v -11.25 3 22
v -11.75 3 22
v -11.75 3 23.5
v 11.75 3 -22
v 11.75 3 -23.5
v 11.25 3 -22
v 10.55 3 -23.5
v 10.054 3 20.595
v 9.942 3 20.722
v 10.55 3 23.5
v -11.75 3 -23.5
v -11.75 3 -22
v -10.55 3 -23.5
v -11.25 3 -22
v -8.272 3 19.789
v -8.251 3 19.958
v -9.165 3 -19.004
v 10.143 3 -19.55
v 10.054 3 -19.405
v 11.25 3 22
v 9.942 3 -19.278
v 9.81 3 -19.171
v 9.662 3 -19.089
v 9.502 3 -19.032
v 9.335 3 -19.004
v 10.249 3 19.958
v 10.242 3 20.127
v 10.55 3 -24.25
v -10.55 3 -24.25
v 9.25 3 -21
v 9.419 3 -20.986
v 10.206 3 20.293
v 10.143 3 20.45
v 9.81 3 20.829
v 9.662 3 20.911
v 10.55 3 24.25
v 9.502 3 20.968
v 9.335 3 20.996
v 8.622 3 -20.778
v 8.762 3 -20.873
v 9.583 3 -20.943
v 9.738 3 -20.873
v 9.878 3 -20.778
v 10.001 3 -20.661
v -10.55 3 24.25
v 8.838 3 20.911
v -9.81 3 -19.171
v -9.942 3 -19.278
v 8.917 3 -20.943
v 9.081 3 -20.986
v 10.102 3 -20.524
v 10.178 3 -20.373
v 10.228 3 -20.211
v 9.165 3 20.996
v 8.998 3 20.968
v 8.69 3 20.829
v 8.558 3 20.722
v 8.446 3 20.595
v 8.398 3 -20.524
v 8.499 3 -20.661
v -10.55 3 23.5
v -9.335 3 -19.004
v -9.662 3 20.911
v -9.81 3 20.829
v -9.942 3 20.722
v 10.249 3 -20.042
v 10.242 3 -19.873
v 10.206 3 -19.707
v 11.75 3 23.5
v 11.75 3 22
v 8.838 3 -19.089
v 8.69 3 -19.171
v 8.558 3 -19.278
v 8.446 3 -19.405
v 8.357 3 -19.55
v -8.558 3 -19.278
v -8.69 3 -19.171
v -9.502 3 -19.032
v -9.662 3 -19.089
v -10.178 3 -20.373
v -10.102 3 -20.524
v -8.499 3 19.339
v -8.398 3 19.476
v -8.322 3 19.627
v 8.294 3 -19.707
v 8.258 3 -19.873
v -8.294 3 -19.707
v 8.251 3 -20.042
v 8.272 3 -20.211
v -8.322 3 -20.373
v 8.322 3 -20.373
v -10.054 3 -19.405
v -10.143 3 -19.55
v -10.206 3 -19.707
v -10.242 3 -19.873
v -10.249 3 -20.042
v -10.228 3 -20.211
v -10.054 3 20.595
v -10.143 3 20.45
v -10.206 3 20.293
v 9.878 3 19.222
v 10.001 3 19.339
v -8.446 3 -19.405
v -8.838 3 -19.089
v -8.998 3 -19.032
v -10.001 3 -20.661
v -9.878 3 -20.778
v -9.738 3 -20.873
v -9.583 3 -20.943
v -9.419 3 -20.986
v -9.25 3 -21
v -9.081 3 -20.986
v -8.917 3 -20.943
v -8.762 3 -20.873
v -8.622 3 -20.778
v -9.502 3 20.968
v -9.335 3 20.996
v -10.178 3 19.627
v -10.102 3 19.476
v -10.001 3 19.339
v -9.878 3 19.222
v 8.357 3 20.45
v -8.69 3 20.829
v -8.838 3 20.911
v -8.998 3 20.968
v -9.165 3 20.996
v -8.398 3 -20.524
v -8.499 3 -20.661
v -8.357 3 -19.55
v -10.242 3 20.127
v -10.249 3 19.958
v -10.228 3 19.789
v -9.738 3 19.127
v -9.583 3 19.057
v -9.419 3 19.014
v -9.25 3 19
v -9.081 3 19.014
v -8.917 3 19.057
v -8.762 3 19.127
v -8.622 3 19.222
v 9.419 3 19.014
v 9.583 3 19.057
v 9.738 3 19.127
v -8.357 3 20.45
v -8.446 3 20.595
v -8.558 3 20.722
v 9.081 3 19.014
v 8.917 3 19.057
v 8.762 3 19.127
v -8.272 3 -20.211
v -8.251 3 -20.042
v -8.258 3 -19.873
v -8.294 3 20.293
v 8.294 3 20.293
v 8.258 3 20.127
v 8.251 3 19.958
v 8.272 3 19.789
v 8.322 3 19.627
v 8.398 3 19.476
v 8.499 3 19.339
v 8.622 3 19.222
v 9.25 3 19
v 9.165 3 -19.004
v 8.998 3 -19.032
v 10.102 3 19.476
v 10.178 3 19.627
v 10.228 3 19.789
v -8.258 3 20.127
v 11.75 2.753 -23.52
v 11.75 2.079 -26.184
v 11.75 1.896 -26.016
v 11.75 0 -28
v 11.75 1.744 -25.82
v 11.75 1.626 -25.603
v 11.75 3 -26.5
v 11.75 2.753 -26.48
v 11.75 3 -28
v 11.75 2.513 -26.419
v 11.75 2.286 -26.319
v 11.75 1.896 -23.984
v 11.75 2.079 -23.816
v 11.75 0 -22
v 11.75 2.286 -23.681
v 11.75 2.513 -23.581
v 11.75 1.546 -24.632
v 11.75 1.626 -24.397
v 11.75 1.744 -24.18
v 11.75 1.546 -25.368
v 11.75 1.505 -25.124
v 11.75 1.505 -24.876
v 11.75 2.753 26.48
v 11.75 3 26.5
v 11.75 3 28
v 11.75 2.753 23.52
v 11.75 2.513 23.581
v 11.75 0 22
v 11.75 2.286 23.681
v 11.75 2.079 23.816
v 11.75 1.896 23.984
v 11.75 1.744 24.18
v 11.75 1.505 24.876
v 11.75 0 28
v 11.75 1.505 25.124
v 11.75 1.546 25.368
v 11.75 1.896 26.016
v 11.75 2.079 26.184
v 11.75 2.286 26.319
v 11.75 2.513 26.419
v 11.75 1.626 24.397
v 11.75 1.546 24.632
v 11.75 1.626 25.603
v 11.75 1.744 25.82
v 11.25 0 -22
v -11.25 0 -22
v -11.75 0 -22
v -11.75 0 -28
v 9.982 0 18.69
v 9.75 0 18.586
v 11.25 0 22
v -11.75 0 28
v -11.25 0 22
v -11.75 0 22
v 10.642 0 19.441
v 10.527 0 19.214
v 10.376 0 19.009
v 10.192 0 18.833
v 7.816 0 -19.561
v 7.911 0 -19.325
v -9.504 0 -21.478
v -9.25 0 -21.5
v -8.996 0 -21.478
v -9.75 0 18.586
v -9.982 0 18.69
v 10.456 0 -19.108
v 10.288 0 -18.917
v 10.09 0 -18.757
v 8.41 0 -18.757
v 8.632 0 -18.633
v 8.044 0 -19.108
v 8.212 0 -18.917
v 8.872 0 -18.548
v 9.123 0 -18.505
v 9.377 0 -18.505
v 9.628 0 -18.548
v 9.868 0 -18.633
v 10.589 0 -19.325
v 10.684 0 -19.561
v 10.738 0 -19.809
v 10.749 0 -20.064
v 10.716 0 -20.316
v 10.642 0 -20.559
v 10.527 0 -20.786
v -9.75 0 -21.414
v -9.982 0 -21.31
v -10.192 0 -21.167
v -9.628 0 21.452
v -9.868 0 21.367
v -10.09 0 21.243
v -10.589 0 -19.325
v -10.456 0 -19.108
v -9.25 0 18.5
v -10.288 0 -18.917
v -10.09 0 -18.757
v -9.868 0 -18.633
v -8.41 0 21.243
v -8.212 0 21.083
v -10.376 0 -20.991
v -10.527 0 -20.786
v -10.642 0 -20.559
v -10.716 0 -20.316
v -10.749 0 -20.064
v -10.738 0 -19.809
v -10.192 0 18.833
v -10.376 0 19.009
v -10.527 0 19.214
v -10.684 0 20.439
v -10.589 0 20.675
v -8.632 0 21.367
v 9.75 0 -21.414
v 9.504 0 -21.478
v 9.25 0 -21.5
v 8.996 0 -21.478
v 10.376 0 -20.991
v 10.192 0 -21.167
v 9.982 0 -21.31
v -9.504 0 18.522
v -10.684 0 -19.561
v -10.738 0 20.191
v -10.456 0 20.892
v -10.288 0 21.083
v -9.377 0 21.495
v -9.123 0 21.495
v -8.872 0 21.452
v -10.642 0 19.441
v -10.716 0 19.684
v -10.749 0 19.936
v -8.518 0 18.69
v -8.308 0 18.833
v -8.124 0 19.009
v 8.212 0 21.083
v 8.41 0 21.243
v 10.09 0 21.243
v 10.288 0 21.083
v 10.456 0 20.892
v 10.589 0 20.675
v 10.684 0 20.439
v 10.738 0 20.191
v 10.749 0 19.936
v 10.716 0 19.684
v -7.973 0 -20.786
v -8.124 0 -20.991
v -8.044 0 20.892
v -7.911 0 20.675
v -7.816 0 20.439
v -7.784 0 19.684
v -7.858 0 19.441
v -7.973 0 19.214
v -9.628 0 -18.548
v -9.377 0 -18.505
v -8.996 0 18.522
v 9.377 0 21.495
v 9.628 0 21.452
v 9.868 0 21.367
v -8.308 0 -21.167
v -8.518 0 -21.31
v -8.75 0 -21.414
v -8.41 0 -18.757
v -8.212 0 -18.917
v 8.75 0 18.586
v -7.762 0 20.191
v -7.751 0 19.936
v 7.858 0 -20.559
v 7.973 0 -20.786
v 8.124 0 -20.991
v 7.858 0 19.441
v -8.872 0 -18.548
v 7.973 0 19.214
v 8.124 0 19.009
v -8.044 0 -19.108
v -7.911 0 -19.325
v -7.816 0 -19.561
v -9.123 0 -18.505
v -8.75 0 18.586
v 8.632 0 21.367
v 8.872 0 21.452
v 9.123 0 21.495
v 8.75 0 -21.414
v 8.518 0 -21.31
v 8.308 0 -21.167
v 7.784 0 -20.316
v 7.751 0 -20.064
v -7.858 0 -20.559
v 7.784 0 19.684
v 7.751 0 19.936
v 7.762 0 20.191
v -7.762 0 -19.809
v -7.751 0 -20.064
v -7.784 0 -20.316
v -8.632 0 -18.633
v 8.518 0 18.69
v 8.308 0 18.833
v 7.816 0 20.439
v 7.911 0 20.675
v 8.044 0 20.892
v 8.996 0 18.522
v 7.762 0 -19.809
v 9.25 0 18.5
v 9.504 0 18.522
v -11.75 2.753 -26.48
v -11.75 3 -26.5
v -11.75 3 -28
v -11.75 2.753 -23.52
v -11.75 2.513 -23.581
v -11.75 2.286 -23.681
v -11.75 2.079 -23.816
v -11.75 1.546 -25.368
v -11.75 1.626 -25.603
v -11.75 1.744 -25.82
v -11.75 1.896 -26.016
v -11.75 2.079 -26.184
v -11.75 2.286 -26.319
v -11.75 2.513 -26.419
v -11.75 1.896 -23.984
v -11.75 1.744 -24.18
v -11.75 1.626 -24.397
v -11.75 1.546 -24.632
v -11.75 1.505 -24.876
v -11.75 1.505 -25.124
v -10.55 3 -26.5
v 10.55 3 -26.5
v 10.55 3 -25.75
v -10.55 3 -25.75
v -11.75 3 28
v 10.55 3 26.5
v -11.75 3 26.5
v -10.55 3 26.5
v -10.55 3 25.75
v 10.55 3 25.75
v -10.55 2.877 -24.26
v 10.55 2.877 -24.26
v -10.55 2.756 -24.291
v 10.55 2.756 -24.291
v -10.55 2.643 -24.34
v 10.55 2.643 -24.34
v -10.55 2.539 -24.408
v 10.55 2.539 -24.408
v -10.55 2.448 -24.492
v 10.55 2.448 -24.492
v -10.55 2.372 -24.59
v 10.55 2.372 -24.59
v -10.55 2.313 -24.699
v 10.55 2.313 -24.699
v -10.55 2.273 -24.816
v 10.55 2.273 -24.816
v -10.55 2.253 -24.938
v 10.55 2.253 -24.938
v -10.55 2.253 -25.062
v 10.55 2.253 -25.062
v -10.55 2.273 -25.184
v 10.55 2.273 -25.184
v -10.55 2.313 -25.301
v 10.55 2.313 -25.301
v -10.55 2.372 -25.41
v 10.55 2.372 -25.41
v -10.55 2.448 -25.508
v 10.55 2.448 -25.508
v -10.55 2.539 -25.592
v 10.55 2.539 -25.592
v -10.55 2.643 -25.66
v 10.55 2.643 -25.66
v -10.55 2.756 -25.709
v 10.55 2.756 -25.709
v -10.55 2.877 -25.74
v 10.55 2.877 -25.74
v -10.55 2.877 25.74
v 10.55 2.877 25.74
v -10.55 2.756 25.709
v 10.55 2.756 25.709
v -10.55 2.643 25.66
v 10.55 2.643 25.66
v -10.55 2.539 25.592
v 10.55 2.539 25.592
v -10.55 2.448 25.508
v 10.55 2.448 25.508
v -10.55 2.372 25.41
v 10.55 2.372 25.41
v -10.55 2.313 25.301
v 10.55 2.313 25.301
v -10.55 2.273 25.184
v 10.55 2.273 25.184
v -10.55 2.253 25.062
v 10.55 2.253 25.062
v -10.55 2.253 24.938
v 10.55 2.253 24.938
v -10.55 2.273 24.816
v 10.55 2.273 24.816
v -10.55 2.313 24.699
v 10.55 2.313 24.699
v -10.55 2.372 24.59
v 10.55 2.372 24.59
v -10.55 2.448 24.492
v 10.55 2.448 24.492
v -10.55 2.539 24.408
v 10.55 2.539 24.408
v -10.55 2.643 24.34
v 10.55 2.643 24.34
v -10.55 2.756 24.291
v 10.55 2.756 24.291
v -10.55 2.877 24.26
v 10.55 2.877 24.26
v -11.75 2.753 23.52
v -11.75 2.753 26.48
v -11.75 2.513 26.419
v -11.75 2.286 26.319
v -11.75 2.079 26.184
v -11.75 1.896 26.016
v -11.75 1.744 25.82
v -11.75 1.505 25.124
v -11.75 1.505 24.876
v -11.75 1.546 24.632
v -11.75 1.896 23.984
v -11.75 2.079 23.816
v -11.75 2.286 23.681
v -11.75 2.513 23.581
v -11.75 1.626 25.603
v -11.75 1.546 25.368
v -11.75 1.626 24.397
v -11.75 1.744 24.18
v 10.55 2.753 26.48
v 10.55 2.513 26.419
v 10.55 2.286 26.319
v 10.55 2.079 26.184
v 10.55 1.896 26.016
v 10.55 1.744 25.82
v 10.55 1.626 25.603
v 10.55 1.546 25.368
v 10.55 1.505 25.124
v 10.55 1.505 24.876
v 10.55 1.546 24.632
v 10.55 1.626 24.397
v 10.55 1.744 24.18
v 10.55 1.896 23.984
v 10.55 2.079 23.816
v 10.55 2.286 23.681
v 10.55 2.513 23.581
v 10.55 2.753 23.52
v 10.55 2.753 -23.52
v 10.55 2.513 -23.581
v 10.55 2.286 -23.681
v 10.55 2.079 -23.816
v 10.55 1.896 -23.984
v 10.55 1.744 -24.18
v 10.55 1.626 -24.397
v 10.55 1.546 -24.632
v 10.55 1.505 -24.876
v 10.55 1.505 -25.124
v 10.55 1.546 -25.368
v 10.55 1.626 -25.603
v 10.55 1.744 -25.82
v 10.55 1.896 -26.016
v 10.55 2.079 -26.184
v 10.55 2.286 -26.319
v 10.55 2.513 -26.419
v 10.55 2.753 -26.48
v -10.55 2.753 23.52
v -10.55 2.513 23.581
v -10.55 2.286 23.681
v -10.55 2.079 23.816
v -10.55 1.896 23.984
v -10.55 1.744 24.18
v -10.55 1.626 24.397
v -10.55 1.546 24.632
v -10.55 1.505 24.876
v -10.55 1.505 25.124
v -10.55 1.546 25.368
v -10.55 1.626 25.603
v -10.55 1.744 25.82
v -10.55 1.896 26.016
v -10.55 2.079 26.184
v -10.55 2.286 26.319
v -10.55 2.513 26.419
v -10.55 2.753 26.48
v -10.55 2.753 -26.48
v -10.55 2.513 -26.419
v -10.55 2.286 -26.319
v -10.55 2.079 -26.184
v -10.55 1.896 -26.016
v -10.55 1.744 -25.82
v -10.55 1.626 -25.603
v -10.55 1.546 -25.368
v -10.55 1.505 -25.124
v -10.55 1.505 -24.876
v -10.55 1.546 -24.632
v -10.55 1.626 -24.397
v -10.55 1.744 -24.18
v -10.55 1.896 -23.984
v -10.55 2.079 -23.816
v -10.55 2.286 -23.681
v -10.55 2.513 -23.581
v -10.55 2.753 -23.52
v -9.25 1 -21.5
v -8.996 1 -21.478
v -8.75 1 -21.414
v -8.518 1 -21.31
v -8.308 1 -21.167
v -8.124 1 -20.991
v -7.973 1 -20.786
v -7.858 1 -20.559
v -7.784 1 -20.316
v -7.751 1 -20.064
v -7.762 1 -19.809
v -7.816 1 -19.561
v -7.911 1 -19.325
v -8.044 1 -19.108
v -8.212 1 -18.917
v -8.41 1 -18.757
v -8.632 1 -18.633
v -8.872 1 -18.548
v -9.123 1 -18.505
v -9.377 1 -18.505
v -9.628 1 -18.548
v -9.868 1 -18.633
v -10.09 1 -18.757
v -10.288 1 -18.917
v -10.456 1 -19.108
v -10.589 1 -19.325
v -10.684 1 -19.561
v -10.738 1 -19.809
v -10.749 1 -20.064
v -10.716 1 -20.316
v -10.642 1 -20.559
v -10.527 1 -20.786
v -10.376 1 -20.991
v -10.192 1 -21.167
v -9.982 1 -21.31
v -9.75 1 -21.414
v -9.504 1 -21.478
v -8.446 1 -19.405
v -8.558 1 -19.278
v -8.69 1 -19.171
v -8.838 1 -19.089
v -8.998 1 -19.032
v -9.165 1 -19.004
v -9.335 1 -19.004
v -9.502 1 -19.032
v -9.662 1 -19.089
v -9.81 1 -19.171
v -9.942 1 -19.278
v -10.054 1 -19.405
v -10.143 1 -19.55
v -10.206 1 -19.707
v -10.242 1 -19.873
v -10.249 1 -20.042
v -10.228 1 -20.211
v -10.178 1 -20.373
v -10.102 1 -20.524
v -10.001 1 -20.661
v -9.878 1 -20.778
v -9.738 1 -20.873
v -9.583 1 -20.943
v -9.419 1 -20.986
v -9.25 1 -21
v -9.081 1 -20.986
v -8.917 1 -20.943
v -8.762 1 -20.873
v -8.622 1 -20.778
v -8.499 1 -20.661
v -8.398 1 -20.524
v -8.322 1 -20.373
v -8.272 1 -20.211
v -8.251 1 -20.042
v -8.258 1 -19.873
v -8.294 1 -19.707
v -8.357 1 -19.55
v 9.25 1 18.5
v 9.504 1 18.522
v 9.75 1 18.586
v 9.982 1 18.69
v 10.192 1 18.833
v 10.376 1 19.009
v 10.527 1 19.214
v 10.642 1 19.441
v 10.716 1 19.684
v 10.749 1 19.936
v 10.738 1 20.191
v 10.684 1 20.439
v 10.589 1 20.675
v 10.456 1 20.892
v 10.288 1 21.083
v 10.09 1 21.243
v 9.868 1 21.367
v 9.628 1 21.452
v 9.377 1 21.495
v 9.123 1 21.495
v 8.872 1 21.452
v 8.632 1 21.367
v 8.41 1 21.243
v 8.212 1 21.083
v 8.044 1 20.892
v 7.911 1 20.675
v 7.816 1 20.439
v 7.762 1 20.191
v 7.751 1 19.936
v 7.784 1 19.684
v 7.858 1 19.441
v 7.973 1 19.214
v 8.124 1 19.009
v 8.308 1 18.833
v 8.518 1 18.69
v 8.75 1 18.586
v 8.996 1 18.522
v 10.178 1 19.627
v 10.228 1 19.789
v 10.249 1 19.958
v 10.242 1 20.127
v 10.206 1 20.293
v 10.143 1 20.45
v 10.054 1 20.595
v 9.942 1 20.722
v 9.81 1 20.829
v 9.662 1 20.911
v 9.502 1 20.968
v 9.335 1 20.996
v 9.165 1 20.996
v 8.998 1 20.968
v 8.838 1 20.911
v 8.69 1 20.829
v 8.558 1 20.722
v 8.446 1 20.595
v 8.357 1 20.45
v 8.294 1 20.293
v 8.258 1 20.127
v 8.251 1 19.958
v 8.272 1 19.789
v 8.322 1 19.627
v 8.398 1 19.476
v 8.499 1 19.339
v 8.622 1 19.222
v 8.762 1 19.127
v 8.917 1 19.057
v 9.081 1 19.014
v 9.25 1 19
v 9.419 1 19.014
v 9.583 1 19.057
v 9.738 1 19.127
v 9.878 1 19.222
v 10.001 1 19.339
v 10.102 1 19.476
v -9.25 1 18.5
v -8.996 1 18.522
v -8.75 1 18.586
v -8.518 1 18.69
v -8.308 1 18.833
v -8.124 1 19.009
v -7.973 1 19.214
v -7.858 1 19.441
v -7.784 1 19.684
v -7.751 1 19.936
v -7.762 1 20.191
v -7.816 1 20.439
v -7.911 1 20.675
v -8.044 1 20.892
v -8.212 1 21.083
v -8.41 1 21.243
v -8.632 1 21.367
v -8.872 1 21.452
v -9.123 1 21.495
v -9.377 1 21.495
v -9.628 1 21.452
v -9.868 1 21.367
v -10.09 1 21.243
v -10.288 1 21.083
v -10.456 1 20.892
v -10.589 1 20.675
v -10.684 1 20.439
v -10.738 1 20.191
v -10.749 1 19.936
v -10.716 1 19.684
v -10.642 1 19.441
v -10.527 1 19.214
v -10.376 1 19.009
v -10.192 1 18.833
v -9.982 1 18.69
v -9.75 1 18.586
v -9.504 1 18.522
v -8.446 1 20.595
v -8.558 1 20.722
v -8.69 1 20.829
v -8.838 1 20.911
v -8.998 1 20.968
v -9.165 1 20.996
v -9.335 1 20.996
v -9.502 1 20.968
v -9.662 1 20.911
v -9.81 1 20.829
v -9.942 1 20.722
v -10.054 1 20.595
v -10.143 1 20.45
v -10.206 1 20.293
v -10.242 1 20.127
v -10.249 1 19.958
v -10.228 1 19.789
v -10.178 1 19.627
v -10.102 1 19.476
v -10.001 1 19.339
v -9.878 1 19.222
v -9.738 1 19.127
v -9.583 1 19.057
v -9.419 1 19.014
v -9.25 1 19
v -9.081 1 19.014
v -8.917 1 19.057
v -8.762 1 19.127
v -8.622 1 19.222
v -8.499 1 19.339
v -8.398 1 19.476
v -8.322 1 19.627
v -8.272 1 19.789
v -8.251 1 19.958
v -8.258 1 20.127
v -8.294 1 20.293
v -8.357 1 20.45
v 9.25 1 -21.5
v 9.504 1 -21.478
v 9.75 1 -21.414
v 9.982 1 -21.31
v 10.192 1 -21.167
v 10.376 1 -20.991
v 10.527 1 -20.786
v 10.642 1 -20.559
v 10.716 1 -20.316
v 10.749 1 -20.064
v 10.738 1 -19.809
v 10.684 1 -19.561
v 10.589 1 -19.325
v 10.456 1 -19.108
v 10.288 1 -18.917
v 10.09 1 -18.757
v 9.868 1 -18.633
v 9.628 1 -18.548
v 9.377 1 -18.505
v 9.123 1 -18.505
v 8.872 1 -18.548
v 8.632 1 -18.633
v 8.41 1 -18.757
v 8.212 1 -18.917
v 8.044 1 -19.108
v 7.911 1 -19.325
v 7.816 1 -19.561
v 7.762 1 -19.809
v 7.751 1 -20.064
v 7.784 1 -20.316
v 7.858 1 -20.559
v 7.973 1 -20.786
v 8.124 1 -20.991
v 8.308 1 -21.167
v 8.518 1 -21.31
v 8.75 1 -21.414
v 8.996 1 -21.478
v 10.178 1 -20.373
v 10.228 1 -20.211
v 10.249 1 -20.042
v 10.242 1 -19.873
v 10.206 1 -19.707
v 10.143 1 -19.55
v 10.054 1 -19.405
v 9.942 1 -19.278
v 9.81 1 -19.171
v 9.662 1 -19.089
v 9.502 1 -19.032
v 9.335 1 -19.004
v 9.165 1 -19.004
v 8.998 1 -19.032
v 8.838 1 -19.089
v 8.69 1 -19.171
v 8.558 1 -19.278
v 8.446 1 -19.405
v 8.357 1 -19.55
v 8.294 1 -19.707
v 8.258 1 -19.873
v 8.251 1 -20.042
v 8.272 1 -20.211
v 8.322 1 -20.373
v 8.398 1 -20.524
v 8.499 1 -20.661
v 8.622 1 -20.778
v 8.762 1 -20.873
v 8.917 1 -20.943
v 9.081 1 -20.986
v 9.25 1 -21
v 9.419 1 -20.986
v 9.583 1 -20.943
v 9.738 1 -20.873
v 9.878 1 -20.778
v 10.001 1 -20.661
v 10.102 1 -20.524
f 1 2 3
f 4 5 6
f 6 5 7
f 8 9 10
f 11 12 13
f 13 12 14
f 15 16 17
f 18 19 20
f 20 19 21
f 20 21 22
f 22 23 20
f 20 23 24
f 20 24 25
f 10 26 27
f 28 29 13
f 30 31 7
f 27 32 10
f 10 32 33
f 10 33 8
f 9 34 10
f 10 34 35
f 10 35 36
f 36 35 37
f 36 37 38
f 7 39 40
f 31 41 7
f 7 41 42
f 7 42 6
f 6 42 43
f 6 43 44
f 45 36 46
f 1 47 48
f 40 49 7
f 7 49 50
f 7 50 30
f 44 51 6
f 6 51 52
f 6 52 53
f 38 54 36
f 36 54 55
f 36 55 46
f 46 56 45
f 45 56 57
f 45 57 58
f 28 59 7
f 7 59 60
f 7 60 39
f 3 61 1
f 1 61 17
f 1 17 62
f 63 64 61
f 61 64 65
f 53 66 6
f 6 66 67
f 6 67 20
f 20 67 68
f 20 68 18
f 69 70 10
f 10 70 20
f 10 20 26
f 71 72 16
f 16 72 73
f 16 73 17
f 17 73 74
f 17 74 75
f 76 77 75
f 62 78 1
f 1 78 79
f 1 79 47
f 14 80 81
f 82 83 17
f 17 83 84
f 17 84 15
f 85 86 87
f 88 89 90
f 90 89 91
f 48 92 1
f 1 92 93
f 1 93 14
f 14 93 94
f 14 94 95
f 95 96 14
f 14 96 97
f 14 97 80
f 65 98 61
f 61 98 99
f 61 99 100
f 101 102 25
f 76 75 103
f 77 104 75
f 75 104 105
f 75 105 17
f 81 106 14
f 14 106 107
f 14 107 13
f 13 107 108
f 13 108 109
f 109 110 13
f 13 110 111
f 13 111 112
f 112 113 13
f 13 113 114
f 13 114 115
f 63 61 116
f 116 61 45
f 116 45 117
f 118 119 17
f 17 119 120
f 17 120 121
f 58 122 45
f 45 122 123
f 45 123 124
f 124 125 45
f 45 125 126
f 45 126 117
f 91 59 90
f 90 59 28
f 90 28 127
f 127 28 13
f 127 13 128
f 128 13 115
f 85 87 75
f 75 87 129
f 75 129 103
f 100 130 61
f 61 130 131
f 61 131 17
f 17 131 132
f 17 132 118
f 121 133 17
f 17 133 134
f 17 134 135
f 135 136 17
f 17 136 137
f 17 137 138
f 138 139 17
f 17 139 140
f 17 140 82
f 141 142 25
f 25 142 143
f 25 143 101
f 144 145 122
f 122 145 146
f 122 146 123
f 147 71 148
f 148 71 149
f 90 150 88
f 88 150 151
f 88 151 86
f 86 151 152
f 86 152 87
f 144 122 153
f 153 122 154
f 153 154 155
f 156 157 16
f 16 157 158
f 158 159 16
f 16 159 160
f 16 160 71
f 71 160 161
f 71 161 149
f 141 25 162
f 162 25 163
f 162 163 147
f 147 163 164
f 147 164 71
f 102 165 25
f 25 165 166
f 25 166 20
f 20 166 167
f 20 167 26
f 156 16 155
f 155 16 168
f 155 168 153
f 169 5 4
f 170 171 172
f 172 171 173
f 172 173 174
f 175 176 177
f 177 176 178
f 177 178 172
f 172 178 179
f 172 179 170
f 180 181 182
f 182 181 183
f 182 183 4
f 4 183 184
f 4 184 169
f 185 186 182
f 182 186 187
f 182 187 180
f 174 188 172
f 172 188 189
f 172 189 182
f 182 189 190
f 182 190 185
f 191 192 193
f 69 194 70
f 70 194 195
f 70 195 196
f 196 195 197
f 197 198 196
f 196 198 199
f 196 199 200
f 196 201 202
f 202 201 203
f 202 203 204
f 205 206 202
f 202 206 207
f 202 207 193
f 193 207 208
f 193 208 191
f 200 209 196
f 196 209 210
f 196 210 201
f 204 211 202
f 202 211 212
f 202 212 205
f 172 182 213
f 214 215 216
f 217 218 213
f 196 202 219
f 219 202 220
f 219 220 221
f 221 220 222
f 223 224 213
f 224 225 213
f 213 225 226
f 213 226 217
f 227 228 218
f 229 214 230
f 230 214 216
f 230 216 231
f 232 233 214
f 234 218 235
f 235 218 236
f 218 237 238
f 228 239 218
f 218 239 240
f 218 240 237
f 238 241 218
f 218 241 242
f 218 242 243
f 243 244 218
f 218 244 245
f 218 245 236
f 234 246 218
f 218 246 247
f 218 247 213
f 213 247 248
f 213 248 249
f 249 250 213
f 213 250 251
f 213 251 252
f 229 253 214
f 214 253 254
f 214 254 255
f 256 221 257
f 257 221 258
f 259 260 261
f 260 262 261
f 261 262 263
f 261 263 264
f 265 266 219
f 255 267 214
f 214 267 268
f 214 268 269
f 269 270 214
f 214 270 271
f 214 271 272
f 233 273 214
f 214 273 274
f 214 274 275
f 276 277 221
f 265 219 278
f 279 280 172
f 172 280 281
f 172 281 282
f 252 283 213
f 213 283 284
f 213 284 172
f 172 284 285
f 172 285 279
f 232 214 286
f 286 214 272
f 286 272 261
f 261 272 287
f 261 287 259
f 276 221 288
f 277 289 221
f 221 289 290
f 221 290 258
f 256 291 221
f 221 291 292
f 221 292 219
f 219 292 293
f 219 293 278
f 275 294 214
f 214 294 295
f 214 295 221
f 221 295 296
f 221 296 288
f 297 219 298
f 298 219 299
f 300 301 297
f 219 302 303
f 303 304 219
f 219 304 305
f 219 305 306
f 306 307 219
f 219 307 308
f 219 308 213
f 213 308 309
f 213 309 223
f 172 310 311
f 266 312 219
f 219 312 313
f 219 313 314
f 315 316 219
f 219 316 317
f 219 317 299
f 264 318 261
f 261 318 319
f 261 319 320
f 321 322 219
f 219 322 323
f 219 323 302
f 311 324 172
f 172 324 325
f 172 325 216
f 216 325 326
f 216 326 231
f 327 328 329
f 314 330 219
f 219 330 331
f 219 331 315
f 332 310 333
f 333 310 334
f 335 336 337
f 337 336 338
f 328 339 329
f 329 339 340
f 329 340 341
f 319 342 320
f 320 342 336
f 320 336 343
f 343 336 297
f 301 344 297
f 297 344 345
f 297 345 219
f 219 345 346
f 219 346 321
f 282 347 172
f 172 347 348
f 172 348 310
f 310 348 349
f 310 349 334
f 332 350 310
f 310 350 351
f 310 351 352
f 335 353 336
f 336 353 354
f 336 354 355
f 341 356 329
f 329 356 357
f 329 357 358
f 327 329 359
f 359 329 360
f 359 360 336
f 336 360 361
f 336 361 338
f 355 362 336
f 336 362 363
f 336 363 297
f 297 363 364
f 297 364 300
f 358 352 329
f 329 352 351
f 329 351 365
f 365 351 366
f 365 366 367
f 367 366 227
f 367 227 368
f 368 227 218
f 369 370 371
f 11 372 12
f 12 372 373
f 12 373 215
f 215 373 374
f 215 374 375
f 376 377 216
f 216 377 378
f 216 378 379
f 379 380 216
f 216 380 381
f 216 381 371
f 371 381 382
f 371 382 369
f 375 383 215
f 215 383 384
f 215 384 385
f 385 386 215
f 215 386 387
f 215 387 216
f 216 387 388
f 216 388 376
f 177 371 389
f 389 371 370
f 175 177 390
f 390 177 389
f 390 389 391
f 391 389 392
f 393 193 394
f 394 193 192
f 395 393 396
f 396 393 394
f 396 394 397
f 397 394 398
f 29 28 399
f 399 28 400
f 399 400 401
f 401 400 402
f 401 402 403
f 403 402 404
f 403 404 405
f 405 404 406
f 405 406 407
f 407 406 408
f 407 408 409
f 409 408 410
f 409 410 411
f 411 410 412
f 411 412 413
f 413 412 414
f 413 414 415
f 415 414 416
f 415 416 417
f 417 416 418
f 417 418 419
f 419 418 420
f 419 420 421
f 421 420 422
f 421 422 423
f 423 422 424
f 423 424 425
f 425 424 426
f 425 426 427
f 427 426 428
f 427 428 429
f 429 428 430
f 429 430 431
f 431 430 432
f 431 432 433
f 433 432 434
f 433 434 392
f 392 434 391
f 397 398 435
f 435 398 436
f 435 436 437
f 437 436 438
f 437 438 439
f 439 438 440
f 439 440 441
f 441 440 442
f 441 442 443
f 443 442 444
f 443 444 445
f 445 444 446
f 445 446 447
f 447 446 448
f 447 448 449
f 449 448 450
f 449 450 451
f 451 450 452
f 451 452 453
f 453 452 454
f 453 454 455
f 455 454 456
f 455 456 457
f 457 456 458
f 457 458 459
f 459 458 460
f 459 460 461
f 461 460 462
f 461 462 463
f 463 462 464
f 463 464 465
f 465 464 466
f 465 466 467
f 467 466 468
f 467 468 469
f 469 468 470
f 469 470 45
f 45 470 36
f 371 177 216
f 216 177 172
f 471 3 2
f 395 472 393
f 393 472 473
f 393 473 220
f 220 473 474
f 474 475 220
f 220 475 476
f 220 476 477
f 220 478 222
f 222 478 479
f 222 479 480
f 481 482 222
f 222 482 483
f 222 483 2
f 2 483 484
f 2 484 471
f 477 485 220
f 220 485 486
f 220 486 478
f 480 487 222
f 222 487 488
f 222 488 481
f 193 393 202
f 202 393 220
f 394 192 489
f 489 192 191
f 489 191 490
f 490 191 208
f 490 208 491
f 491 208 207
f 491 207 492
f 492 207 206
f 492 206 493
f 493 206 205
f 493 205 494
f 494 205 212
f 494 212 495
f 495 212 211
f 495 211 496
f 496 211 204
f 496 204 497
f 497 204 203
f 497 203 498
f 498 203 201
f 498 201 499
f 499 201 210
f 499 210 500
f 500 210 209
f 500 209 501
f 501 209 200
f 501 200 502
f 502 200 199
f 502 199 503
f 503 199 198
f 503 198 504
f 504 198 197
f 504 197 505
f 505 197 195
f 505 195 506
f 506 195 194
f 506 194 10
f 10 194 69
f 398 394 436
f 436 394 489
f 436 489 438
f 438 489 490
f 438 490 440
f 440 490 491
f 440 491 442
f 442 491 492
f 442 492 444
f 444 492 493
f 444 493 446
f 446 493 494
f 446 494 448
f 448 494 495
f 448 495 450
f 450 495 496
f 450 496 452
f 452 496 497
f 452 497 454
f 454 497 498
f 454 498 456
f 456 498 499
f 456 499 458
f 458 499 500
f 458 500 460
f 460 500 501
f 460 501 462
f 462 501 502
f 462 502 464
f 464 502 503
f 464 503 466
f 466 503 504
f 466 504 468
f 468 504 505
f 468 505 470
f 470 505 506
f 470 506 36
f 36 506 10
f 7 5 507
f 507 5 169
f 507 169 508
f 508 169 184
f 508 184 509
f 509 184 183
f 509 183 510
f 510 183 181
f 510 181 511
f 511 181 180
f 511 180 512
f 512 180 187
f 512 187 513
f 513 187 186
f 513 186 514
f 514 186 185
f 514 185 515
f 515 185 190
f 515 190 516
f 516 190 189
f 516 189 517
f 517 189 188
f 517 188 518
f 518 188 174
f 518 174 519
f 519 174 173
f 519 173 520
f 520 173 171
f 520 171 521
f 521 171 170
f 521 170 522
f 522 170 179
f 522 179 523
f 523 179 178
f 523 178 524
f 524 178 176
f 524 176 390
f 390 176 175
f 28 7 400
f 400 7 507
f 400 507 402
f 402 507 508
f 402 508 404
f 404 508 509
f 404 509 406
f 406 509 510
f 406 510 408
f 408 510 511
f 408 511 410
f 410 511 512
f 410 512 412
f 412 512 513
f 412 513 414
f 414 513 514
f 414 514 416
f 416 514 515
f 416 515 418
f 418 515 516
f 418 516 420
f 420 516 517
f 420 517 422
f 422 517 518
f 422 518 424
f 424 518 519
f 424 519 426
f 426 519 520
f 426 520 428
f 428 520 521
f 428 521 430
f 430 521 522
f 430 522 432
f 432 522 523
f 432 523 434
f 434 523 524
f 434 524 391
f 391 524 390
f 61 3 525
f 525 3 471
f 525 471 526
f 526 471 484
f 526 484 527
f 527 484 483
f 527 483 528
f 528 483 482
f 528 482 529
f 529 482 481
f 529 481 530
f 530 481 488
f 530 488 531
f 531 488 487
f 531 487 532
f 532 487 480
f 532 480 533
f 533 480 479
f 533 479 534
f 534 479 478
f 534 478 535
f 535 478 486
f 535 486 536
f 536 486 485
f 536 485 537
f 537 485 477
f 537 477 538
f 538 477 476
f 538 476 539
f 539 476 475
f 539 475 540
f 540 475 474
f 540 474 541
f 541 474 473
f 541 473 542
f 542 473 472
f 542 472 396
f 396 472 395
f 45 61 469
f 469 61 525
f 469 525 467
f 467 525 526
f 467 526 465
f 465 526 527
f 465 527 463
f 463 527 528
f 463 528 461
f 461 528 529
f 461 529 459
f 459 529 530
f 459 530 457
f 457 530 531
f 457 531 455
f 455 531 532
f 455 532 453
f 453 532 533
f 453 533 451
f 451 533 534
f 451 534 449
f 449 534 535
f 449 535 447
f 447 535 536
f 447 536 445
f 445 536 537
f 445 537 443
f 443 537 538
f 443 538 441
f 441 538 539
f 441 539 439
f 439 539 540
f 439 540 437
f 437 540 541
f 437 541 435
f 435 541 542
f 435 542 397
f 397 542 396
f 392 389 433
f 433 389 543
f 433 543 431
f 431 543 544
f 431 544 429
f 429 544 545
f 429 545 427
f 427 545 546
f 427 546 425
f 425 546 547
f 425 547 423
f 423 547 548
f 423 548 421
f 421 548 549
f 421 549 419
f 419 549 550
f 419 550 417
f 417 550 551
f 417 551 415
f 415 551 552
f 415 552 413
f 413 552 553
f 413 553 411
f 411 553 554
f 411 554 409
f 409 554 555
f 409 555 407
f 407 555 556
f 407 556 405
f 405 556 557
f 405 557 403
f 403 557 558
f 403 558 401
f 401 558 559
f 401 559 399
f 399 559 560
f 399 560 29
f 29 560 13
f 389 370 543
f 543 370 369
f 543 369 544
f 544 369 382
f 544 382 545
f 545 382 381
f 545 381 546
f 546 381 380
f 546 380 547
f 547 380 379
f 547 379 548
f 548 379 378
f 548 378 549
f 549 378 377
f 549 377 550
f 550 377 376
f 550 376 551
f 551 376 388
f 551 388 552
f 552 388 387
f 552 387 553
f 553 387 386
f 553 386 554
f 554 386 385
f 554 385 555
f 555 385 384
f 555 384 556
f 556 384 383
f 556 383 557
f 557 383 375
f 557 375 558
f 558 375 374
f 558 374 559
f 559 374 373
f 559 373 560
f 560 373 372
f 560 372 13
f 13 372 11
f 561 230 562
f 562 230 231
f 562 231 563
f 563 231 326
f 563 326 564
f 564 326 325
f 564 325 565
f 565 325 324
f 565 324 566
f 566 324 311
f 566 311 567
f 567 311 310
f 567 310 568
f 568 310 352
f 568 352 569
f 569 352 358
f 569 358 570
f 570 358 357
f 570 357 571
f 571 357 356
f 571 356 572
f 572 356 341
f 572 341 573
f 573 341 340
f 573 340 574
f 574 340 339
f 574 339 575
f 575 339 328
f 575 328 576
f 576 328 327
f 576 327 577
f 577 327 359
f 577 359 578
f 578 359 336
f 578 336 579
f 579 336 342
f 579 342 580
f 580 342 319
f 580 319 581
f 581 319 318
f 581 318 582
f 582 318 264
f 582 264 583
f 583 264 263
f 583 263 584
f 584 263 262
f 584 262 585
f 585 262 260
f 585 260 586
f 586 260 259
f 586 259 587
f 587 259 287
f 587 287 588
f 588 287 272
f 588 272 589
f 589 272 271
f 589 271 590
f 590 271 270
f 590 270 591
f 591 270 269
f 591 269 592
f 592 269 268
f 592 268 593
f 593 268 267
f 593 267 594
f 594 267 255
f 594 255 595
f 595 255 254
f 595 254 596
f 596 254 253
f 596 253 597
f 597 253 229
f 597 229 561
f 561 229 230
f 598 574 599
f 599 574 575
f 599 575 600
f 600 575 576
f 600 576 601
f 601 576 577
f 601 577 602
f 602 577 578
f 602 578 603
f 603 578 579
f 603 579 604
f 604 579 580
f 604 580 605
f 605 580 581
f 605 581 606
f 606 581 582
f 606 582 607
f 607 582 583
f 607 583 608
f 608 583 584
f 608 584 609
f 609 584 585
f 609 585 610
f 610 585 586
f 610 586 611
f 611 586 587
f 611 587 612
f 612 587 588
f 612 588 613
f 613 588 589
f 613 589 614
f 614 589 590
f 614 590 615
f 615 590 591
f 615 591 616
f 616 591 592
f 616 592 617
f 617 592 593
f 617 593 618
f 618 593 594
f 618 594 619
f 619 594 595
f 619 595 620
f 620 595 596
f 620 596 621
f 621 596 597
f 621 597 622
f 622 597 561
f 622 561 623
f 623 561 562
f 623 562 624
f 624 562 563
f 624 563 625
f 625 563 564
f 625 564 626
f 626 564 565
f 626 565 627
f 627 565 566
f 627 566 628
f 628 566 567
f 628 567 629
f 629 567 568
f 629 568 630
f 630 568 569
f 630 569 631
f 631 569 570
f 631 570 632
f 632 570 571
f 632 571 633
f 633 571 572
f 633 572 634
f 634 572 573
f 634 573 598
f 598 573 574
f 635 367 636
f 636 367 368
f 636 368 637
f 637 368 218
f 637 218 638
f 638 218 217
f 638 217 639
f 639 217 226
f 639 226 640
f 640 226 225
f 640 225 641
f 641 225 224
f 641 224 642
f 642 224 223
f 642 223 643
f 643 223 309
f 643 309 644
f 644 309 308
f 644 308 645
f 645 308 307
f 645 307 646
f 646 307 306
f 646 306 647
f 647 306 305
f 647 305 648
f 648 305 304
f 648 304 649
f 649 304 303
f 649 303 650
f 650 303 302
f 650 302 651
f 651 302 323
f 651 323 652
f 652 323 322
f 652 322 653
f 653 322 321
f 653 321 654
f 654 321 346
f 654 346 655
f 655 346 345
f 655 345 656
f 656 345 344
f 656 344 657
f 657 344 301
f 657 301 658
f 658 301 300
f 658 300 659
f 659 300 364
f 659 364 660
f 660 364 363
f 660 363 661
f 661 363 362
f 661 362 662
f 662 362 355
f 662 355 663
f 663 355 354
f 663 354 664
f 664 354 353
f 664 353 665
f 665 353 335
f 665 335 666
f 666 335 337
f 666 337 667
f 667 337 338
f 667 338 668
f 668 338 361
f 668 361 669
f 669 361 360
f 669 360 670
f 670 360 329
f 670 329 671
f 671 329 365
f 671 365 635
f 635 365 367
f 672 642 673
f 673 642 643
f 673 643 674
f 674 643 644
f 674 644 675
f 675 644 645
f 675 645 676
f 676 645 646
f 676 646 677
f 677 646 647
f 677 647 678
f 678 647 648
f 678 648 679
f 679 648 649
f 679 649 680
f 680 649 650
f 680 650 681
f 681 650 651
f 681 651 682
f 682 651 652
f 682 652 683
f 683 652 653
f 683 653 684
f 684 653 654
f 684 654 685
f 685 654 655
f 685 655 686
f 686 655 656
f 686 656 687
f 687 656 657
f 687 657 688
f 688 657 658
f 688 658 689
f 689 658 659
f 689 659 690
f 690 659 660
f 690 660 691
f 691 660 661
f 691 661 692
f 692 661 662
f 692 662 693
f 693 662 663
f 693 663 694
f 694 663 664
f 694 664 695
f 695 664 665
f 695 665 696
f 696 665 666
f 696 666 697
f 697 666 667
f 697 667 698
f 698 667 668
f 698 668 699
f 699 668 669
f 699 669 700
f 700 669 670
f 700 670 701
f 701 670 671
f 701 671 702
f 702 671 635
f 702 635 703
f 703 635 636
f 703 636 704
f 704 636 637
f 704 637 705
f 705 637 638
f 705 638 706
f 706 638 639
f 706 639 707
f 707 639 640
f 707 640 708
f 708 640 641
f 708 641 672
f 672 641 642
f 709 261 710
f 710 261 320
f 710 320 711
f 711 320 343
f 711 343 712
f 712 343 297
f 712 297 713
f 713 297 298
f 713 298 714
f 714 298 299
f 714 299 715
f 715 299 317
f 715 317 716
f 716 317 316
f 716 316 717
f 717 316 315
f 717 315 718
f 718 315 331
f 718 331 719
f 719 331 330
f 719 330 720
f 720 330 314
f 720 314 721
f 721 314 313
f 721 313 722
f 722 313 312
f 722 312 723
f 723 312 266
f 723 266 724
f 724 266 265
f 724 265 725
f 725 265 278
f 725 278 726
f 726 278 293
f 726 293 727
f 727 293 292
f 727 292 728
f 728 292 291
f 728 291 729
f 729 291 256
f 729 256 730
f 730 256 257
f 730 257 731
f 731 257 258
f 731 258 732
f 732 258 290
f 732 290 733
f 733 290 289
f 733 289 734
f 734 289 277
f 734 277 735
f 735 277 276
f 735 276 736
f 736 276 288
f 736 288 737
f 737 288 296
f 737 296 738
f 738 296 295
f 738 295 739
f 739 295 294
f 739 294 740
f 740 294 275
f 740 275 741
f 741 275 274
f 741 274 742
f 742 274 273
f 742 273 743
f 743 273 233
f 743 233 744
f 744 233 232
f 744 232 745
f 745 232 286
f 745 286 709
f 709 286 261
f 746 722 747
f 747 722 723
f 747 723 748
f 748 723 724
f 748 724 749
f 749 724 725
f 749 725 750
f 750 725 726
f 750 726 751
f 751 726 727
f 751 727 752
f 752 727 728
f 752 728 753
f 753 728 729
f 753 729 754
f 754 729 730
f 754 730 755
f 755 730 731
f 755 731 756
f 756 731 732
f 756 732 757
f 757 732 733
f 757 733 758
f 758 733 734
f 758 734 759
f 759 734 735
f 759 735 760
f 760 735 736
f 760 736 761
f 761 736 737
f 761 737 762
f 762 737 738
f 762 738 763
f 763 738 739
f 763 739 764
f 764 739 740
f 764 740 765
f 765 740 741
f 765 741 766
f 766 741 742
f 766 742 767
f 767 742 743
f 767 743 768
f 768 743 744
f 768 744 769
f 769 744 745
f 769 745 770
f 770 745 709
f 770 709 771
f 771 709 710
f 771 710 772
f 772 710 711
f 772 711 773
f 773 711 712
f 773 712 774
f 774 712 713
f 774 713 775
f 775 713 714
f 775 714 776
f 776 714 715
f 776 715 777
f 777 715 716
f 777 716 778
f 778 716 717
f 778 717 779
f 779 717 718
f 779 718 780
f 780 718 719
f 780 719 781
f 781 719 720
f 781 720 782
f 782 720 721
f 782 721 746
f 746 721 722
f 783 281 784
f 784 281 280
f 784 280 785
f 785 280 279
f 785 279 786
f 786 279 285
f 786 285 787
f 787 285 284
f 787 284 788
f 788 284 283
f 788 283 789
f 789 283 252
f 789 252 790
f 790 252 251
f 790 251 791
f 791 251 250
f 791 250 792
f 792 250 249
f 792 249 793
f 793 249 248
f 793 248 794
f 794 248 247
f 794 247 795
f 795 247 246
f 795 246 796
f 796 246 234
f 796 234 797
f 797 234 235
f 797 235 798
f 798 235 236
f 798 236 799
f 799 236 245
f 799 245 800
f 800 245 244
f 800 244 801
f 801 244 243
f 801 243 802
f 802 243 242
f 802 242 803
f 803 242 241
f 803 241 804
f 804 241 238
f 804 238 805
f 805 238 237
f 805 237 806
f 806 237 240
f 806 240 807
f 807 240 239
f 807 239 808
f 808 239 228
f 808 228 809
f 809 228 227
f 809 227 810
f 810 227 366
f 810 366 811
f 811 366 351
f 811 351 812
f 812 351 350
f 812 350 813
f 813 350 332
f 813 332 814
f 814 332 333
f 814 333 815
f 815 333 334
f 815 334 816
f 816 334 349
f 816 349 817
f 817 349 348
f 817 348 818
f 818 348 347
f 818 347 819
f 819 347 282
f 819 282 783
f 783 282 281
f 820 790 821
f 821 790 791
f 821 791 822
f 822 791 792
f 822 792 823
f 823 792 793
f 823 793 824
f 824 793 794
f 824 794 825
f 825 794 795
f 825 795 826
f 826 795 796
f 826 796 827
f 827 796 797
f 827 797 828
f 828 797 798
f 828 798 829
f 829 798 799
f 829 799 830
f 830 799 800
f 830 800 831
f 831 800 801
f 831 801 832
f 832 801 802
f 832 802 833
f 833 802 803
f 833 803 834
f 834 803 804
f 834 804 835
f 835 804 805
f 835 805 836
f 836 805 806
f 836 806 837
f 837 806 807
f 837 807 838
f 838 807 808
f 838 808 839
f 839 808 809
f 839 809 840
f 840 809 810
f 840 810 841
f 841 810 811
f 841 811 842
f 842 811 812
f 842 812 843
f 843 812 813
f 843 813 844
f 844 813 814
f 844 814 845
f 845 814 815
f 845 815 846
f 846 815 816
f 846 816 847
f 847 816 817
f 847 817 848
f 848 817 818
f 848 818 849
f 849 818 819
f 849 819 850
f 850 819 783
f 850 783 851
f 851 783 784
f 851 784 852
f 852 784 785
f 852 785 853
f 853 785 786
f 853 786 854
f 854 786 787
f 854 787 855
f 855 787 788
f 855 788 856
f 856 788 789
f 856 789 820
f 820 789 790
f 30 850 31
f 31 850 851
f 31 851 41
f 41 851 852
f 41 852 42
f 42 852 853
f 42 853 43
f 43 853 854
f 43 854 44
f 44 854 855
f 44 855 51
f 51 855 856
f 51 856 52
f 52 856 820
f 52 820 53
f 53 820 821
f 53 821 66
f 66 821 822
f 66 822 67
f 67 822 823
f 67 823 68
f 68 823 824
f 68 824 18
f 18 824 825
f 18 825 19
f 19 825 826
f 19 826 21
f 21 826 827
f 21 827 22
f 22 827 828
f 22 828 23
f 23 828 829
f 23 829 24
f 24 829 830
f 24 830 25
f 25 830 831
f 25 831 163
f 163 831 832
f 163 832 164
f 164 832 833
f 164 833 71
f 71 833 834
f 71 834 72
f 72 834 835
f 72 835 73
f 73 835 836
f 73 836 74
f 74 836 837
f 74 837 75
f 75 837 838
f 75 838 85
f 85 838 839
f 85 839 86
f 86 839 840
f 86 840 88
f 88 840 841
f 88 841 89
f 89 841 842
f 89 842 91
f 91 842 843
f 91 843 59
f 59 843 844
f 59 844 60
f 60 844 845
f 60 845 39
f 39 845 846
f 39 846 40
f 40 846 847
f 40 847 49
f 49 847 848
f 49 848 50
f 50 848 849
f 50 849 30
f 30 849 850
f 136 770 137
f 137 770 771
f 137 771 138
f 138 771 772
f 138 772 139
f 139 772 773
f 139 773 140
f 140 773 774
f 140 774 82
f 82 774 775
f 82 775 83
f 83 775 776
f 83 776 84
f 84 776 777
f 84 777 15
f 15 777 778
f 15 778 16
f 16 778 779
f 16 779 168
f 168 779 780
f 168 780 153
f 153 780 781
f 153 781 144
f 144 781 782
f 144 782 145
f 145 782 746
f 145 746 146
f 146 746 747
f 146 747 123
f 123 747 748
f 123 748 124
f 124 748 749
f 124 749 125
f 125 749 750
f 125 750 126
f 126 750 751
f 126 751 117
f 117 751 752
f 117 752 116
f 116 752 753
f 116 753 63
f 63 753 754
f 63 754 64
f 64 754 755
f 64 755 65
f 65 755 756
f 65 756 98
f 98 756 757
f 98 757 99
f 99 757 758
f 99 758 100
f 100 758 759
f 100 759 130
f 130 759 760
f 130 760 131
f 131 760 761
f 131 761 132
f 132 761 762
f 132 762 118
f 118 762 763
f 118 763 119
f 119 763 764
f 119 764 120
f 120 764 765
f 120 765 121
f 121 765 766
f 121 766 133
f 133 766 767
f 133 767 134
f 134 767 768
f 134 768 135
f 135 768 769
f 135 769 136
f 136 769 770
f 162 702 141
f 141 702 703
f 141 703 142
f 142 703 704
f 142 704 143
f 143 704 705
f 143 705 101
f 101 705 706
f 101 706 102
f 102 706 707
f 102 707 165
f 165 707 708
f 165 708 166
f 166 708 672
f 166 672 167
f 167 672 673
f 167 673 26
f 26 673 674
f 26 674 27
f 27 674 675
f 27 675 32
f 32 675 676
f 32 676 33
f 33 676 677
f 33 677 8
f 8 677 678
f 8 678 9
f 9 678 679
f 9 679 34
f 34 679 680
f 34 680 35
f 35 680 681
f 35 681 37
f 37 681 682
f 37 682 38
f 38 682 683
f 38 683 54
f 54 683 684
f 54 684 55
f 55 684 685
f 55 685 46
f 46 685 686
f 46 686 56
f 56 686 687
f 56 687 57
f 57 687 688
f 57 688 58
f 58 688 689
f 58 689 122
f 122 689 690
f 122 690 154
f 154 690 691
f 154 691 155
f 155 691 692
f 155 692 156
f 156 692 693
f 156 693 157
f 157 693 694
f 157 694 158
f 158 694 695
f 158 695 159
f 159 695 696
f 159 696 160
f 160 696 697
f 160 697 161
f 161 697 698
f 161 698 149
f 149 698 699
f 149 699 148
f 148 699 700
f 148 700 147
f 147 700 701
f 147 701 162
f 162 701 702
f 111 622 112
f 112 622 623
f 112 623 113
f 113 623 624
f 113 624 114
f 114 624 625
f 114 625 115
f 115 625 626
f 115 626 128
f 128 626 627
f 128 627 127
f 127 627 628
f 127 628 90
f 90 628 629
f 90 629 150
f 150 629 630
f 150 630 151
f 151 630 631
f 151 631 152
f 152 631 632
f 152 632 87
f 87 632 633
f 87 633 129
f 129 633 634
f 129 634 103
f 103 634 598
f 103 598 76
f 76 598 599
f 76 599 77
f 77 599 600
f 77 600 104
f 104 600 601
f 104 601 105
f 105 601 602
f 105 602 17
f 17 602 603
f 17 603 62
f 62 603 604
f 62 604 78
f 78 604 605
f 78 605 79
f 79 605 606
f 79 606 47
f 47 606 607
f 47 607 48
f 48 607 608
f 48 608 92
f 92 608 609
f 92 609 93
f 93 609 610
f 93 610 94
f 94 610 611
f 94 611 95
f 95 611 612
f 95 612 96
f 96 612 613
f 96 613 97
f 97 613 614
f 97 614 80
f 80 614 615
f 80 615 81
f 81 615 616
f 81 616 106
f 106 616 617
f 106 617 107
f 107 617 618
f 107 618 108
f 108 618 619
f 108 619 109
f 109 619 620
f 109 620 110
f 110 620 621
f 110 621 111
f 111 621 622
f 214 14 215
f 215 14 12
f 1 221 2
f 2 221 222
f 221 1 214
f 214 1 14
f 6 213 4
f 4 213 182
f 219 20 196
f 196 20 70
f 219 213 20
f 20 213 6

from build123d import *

# Parameters (mm, degrees)
SKETCH_4_W          = 23.5
SKETCH_4_H          = 56
EXTRUDE_1_DEPTH     = 3
SKETCH_5_R          = 0.75
CUT_EXTRUDE_1_DEPTH = 37.67764987
SKETCH_5_3_R        = 1.5
CUT_EXTRUDE_4_DEPTH = 1.2
CUT_EXTRUDE_START   = -22.3
SKETCH_5_4_R        = 1.5
CUT_EXTRUDE_5_DEPTH = 1.2
SKETCH_6_R          = 1.5
SKETCH_6_R_2        = 1
CUT_EXTRUDE_2_DEPTH = 1
SKETCH_6_2_R        = 1
CUT_EXTRUDE_3_DEPTH = 31.513316765
SKETCH_7_W          = 44
SKETCH_7_H          = 3
CUT_EXTRUDE_8_DEPTH = 0.5
CUT_EXTRUDE_START_2 = -23.5
SKETCH_7_2_W        = 44
SKETCH_7_2_H        = 3
CUT_EXTRUDE_9_DEPTH = 0.5


with BuildPart() as part:
    # 草图4 → 凸台-拉伸1 (new body)
    with BuildSketch(Plane(origin=(0, 0, 0), x_dir=(1, 0, 0), z_dir=(0, 1, 0))):
        Rectangle(SKETCH_4_W, SKETCH_4_H)
    extrude(amount=EXTRUDE_1_DEPTH)

    # 草图5 → 切除-拉伸1 (cut, through all)
    with BuildSketch(Plane(origin=(11.75, 0, 0), x_dir=(0, 0, -1), z_dir=(1, 0, 0))):
        with Locations((-25, 3)):
            Circle(SKETCH_5_R)
        with Locations((25, 3)):
            Circle(SKETCH_5_R)
    extrude(amount=-CUT_EXTRUDE_1_DEPTH, mode=Mode.SUBTRACT)

    # 草图5<3> → 切除-拉伸4 (cut)
    with BuildSketch(Plane(origin=(11.75, 0, 0), x_dir=(0, 0, -1), z_dir=(1, 0, 0))):
        with Locations((-25, 3)):
            Circle(SKETCH_5_3_R)
        with Locations((25, 3)):
            Circle(SKETCH_5_3_R)
    extrude(amount=-CUT_EXTRUDE_4_DEPTH, mode=Mode.SUBTRACT)

    # 草图5<4> → 切除-拉伸5 (cut)
    with BuildSketch(Plane(origin=(11.75, 0, 0), x_dir=(0, 0, -1), z_dir=(1, 0, 0)).offset(CUT_EXTRUDE_START)):
        with Locations((-25, 3)):
            Circle(SKETCH_5_4_R)
        with Locations((25, 3)):
            Circle(SKETCH_5_4_R)
    extrude(amount=-CUT_EXTRUDE_5_DEPTH, mode=Mode.SUBTRACT)

    # 草图6 → 切除-拉伸2 (cut)
    # profile 1 of 4: a face of its own
    with BuildSketch(Plane.XZ):
        with Locations(Location((-9.25, -20, 0), (0, 0, 270))):
            Circle(SKETCH_6_R)
        with Locations(Location((-9.25, -20, 0), (0, 0, 270))):
            Circle(SKETCH_6_R_2, mode=Mode.SUBTRACT)
    # profile 2 of 4: a face of its own
    with BuildSketch(Plane.XZ):
        with Locations(Location((9.25, -20, 0), (0, 0, 270))):
            Circle(SKETCH_6_R)
        with Locations(Location((9.25, -20, 0), (0, 0, 270))):
            Circle(SKETCH_6_R_2, mode=Mode.SUBTRACT)
    # profile 3 of 4: a face of its own
    with BuildSketch(Plane.XZ):
        with Locations(Location((-9.25, 20, 0), (0, 0, 270))):
            Circle(SKETCH_6_R)
        with Locations(Location((-9.25, 20, 0), (0, 0, 270))):
            Circle(SKETCH_6_R_2, mode=Mode.SUBTRACT)
    # profile 4 of 4: a face of its own
    with BuildSketch(Plane.XZ):
        with Locations(Location((9.25, 20, 0), (0, 0, 270))):
            Circle(SKETCH_6_R)
        with Locations(Location((9.25, 20, 0), (0, 0, 270))):
            Circle(SKETCH_6_R_2, mode=Mode.SUBTRACT)
    extrude(amount=-CUT_EXTRUDE_2_DEPTH, mode=Mode.SUBTRACT)

    # 草图6<2> → 切除-拉伸3 (cut, through all)
    with BuildSketch(Plane.XZ):
        with Locations(Location((-9.25, -20, 0), (0, 0, 270))):
            Circle(SKETCH_6_2_R)
        with Locations(Location((9.25, -20, 0), (0, 0, 270))):
            Circle(SKETCH_6_2_R)
        with Locations(Location((-9.25, 20, 0), (0, 0, 270))):
            Circle(SKETCH_6_2_R)
        with Locations(Location((9.25, 20, 0), (0, 0, 270))):
            Circle(SKETCH_6_2_R)
    extrude(amount=-CUT_EXTRUDE_3_DEPTH, mode=Mode.SUBTRACT)

    # 草图7 → 切除-拉伸8 (cut)
    with BuildSketch(Plane.ZY.offset(11.75)):
        with Locations((0, 1.5)):
            Rectangle(SKETCH_7_W, SKETCH_7_H)
    extrude(amount=-CUT_EXTRUDE_8_DEPTH, mode=Mode.SUBTRACT)

    # 草图7<2> → 切除-拉伸9 (cut)
    with BuildSketch(Plane.ZY.offset(11.75).offset(CUT_EXTRUDE_START_2)):
        with Locations((0, 1.5)):
            Rectangle(SKETCH_7_2_W, SKETCH_7_2_H)
    extrude(amount=CUT_EXTRUDE_9_DEPTH, mode=Mode.SUBTRACT)


solid = part.part
